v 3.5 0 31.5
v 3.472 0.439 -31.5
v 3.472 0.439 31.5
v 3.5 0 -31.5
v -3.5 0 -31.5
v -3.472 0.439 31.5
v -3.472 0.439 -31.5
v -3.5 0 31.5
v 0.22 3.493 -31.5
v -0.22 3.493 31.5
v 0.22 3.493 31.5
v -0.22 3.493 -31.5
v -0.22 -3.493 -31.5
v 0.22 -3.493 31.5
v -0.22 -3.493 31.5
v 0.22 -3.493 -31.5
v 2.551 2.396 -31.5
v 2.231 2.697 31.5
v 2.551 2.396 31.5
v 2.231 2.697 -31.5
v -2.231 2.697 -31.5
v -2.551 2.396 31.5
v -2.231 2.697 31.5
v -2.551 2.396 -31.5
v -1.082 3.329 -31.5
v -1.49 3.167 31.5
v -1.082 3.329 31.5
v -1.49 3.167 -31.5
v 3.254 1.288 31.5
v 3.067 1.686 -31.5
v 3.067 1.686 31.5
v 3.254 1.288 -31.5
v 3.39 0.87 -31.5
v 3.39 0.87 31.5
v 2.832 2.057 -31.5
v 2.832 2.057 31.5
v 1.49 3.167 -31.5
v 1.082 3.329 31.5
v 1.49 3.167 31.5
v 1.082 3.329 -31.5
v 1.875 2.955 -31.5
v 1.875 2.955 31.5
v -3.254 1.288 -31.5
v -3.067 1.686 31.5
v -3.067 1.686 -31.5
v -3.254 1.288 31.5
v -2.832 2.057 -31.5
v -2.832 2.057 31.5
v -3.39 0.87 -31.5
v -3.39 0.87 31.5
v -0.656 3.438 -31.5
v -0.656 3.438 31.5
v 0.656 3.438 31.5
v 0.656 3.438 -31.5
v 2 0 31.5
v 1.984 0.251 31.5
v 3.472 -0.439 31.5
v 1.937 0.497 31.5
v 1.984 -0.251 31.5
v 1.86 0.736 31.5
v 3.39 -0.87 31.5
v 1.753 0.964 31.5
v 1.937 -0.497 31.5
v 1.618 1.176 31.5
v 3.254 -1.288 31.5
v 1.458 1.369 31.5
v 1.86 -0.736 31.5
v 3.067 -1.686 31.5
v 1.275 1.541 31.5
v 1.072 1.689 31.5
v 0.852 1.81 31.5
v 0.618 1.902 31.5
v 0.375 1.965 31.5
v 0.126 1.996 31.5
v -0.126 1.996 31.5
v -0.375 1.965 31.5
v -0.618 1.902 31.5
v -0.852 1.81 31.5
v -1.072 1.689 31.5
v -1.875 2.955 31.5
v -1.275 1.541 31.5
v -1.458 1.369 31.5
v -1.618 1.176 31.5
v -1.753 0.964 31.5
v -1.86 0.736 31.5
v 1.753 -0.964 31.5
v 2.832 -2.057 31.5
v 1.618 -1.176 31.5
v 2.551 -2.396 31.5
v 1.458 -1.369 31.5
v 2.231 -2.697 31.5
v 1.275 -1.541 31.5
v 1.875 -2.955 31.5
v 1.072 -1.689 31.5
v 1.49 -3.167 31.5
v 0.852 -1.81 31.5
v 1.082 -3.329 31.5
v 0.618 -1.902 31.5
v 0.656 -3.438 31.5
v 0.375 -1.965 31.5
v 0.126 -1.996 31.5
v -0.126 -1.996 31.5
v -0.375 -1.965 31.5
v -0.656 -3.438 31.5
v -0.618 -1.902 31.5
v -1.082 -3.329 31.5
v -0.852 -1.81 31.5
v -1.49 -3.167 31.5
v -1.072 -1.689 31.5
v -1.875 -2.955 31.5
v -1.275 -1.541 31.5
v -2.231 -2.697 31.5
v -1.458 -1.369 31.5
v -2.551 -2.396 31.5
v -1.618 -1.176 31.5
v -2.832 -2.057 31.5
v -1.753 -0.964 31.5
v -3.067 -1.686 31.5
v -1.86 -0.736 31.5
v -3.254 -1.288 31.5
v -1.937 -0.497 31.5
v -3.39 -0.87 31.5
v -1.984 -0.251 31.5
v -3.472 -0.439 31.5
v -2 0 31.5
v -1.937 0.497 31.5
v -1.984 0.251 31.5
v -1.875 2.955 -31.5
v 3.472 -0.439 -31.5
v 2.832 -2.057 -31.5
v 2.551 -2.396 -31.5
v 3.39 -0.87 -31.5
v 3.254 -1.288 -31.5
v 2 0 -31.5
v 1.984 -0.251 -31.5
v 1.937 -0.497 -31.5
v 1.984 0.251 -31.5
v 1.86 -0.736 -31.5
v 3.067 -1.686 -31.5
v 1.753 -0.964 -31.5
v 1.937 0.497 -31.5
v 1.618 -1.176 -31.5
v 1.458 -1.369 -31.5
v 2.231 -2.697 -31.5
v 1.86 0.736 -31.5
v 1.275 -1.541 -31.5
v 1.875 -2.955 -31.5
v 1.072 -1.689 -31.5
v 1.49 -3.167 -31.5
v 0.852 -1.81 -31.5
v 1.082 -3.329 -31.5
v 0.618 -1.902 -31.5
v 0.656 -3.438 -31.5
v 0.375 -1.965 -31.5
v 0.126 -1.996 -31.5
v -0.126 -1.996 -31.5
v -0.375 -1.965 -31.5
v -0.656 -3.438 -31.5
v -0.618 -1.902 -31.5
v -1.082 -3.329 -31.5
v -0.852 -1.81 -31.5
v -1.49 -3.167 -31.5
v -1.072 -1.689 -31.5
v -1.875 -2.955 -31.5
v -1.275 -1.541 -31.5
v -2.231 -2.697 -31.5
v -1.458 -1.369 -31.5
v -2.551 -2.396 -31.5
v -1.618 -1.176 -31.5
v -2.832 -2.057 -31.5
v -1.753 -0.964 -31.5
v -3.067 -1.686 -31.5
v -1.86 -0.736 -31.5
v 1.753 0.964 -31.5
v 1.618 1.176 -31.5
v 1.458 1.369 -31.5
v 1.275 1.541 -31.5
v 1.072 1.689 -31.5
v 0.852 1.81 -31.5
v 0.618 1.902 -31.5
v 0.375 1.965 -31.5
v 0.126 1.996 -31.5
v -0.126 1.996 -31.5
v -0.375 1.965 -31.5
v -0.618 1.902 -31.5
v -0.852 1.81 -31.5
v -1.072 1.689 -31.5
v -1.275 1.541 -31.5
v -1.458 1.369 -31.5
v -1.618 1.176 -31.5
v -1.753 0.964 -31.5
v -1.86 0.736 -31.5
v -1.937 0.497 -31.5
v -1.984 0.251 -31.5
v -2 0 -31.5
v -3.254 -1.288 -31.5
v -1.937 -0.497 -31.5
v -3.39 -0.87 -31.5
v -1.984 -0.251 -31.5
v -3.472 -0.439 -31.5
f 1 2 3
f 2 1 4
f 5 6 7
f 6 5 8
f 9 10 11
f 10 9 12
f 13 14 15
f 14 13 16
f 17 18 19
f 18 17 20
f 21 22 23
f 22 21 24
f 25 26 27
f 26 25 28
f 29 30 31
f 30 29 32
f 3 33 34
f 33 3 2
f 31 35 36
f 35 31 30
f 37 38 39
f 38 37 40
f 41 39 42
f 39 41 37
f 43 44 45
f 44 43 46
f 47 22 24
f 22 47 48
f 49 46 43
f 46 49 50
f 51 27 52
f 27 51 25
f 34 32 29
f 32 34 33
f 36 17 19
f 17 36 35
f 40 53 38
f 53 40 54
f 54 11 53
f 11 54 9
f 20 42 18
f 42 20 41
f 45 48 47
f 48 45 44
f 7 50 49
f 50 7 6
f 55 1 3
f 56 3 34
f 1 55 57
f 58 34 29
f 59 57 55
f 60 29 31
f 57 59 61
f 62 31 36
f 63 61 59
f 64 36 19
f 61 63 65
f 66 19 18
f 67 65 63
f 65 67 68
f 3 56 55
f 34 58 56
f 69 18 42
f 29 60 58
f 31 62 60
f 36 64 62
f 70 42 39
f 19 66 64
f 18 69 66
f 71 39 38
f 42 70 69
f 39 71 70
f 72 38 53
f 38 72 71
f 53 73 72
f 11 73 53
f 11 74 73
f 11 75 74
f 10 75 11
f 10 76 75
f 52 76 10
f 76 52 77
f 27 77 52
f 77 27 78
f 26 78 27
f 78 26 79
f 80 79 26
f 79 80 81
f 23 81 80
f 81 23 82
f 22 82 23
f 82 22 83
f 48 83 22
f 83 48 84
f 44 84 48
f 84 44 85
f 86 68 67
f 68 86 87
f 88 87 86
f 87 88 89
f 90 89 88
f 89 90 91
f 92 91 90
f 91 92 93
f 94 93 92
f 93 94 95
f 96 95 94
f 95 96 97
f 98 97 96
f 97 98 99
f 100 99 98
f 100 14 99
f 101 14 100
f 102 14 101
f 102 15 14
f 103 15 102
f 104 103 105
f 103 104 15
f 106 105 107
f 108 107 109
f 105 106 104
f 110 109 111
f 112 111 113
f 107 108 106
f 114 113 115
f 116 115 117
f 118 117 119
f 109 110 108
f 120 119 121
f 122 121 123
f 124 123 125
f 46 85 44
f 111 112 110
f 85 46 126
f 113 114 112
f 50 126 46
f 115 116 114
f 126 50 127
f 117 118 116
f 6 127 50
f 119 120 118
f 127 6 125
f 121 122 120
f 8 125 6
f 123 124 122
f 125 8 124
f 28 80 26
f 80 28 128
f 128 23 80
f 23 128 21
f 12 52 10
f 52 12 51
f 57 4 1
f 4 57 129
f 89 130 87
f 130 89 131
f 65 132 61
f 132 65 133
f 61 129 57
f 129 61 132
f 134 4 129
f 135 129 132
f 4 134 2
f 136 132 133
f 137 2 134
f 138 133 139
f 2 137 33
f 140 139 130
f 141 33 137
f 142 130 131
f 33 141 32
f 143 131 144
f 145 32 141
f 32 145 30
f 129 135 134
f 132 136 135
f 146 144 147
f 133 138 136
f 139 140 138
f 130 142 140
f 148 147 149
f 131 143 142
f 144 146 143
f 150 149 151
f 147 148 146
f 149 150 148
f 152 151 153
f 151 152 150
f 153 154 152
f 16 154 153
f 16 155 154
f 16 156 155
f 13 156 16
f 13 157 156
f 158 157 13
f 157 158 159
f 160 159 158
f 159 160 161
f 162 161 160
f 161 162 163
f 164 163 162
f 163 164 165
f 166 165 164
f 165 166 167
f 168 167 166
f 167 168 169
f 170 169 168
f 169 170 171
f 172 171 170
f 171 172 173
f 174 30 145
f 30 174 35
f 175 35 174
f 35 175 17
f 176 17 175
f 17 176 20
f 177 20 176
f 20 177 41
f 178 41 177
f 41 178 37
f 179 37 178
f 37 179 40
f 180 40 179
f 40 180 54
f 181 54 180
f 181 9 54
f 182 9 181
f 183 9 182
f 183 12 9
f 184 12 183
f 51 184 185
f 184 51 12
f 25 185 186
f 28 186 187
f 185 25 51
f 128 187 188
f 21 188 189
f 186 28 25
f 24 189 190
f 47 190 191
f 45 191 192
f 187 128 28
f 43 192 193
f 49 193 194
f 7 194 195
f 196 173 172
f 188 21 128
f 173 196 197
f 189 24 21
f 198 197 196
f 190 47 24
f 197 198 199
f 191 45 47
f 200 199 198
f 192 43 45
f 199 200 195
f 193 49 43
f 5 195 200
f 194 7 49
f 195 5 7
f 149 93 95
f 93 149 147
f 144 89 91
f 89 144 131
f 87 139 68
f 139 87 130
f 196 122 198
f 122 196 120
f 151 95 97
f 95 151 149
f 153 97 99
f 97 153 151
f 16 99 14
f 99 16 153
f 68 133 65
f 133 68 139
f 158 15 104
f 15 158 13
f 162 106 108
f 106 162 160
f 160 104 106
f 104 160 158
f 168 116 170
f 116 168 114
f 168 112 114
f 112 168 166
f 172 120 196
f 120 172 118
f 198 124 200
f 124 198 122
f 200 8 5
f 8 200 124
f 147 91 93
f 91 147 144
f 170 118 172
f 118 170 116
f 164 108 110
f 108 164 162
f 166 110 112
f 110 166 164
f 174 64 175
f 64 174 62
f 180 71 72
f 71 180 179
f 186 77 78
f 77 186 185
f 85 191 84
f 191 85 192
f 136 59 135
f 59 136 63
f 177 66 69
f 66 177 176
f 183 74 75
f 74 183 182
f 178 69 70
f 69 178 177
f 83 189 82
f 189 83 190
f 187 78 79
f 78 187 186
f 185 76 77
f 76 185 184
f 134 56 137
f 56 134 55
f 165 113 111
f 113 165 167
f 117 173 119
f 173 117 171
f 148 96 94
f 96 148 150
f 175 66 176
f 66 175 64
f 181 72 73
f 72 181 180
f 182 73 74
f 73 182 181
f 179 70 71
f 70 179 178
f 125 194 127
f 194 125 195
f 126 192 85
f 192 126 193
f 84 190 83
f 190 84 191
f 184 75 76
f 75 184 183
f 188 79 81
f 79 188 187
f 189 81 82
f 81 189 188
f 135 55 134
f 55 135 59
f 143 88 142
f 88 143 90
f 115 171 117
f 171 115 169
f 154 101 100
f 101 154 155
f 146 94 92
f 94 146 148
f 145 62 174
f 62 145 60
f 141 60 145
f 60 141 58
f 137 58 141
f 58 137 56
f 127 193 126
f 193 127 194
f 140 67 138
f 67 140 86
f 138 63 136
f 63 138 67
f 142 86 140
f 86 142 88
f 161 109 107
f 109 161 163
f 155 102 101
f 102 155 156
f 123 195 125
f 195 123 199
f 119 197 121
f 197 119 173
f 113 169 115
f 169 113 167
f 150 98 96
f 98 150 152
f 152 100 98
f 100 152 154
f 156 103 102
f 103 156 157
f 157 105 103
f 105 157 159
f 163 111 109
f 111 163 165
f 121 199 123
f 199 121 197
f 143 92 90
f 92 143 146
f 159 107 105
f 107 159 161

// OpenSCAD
$fn = 50;


difference() {
	union() {
		translate(v = [0, 0, -31.5000000000]) {
			cylinder(h = 63, r = 3.5000000000);
		}
	}
	union() {
		translate(v = [0, 0, -100.0000000000]) {
			cylinder(h = 200, r = 2);
		}
	}
}
